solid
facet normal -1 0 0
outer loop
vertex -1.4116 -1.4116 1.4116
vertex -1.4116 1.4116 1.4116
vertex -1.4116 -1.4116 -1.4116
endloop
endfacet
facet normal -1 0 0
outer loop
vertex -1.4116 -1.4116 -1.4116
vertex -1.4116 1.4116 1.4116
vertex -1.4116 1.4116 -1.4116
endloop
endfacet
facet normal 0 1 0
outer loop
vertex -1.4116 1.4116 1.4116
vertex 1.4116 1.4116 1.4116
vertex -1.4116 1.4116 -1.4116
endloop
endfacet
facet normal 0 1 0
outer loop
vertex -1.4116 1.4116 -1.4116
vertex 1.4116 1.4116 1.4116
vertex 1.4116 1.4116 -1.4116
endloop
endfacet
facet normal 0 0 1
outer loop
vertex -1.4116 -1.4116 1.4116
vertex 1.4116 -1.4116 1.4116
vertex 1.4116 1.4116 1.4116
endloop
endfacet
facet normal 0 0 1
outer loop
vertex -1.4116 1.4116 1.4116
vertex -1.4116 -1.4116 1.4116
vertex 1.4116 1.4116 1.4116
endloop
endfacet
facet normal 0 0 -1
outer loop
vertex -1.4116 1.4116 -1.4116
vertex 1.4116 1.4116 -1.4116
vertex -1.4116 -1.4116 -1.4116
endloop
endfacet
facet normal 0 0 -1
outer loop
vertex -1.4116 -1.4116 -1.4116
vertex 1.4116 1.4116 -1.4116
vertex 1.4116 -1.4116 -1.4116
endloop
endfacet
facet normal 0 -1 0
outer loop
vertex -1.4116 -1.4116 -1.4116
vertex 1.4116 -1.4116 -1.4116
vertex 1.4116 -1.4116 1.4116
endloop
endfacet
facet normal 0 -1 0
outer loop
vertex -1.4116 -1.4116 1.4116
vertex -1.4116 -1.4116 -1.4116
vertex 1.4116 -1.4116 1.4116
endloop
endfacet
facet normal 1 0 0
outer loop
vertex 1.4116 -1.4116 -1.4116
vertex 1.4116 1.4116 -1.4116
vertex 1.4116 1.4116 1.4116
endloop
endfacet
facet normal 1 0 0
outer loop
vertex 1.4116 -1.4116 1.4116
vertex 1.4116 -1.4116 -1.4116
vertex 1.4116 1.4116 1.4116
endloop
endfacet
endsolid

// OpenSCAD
// file: ../maths_geodesic.scad
/*
	License: This code is placed in the public Domain
	Contributed By: Willliam A Adams
	August 2011
*/

// A couple of useful constants
Cpi = 3.14159;
Cphi = 1.61803399;
Cepsilon = 0.00000001;

 
// Function: clean
//
// Parameters:
//	n - A number that might be very close to zero
// Description:  
//	There are times when you want a very small number to 
// 	just be zero, instead of being that very small number.
//	This function will compare the number to an arbitrarily small 
//	number.  If it is smaller than the 'epsilon', then zero will be 
// 	returned.  Otherwise, the original number will be returned.
//

function clean(n) = (n < 0) ? ((n < -Cepsilon) ? n : 0) : 
	(n < Cepsilon) ? 0 : n; 

// Function: safediv
//
// Parameters
//	n - The numerator
//	d - The denominator
//
// Description:
//	Since division by zero is generally not a desirable thing, safediv
//	will return '0' whenever there is a division by zero.  Although this will
//	mask some erroneous division by zero errors, it is often the case
//	that you actually want this behavior.  So, it makes it convenient.
function safediv(n,d) = (d==0) ? 0 : n/d;


//==================================
// Degrees
//==================================

function DEGREES(radians) = (180/Cpi) * radians;

function RADIANS(degrees) = Cpi/180 * degrees;

function deg(deg, min=0, sec=0) = [deg, min, sec];

function deg_to_dec(d) = d[0] + d[1]/60 + d[2]/60/60;


//==================================
//  Spherical coordinates
//==================================

// create an instance of a spherical coordinate
// long - rotation around z -axis
// lat - latitude, starting at 0 == 'north pole'
// rad - distance from center
function sph(long, lat, rad=1) = [long, lat, rad];

// Convert spherical to cartesian
function sph_to_cart(s) = [
	clean(s[2]*sin(s[1])*cos(s[0])),  
	clean(s[2]*sin(s[1])*sin(s[0])),
	clean(s[2]*cos(s[1]))
	];

// Convert from cartesian to spherical
function sph_from_cart(c) = sph(
	atan2(c[1],c[0]), 
	atan2(sqrt(c[0]*c[0]+c[1]*c[1]), c[2]), 
	sqrt(c[0]*c[0]+c[1]*c[1]+c[2]*c[2])
	);

function sphu_from_cart(c, rad=1) = sph(
	atan2(c[1],c[0]), 
	atan2(sqrt(c[0]*c[0]+c[1]*c[1]), c[2]), 
	rad
	);

// compute the chord distance between two points on a sphere
function sph_dist(c1, c2) = sqrt(
	c1[2]*c1[2] + c2[2]*c2[2] - 
	2*c1[2]*c2[2]*
	((cos(c1[1])*cos(c2[1])) + cos(c1[0]-c2[0])*sin(c1[1])*sin(c2[1]))   
	);


//==========================================
//	Geodesic calculations
// 
//  Reference: Geodesic Math and How to Use It
//  By: Hugh Kenner
//  Second Paperback Edition (2003), p.74-75
//  http://www.amazon.com/Geodesic-Math-How-Hugh-Kenner/dp/0520239318
//
//  The book was used for reference, so if you want to check the math, 
//  you can plug in various numbers to various routines and see if you get
//  the same numbers in the book.
//
//  In general, there are enough routines here to implement the various
//  pieces necessary to make geodesic objects.
//==========================================

function poly_sum_interior_angles(sides) = (sides-2)*180;
function poly_single_interior_angle(pq) = poly_sum_interior_angles(pq[0])/pq[0];



// Given a set of coordinates, return the frequency
// Simply calculated by adding up the values of the coordinates
function geo_freq(xyz) = xyz[0]+xyz[1]+xyz[2];

// Convert between the 2D coordinates of vertices on the face triangle
// to the 3D vertices needed to calculate spherical coordinates
function geo_tri2_tri3(xyf) = [xyf[1], xyf[0]-xyf[1], xyf[2]-xyf[0]];

// Given coordinates for a vertex on the octahedron face
// return the spherical coordinates for the vertex
// class 1, method 1
function octa_class1(c) = sph(
	atan(safediv(c[0], c[1])),
	atan(sqrt(c[0]*c[0]+c[1]*c[1])/c[2]),
	1 
	);

function octa_class2(c) = sph(
	atan(c[0]/c[1]),
	atan( sqrt( 2*(c[0]*c[0]+c[1]*c[1])) /c[2]),
	1 
	);

function icosa_class1(c) = octa_class1(
	[
		c[0]*sin(72),  
		c[1]+c[0]*cos(72),  
		geo_freq(c)/2+c[2]/Cphi
	]);

function icosa_class2(c) = sph(
	atan([c0]/c[1]), 
	atan(sqrt(c[0]*c[0]+c[1]*c[1]))/cos(36)*c[2],
	1
	);
 
function tetra_class1(c) = octa_class1(
	[
		sqrt(3*c[0]),  
		2*c[1]-c[0],  
		(3*c[2]-c[0]-c[1])/sqrt(2)
	]);

function class1_icosa_chord_factor(v1, v2, freq) = sph_dist( 
		icosa_class1(geo_tri2_tri3( [v1[0], v1[1], freq])),
		icosa_class1(geo_tri2_tri3( [v2[0], v2[1], freq]))
	);
// main file
// file autogenerated by platonicSTLgen
// author: thanasi athanassiadis (thanasi@uchicago.edu)
// script dated: august 25, 2012

include <../platonic.scad>

// units are mm

rad = 2.444883;

poly = hexahedron(rad);

for(i = [ [0.000000,0.000000,0.000000] ])
{
    translate(i)
    display_polyhedron(poly);
}

module display_polyhedron(poly) 
{
polyhedron(points = poly[0], triangles = poly[1]);
}
